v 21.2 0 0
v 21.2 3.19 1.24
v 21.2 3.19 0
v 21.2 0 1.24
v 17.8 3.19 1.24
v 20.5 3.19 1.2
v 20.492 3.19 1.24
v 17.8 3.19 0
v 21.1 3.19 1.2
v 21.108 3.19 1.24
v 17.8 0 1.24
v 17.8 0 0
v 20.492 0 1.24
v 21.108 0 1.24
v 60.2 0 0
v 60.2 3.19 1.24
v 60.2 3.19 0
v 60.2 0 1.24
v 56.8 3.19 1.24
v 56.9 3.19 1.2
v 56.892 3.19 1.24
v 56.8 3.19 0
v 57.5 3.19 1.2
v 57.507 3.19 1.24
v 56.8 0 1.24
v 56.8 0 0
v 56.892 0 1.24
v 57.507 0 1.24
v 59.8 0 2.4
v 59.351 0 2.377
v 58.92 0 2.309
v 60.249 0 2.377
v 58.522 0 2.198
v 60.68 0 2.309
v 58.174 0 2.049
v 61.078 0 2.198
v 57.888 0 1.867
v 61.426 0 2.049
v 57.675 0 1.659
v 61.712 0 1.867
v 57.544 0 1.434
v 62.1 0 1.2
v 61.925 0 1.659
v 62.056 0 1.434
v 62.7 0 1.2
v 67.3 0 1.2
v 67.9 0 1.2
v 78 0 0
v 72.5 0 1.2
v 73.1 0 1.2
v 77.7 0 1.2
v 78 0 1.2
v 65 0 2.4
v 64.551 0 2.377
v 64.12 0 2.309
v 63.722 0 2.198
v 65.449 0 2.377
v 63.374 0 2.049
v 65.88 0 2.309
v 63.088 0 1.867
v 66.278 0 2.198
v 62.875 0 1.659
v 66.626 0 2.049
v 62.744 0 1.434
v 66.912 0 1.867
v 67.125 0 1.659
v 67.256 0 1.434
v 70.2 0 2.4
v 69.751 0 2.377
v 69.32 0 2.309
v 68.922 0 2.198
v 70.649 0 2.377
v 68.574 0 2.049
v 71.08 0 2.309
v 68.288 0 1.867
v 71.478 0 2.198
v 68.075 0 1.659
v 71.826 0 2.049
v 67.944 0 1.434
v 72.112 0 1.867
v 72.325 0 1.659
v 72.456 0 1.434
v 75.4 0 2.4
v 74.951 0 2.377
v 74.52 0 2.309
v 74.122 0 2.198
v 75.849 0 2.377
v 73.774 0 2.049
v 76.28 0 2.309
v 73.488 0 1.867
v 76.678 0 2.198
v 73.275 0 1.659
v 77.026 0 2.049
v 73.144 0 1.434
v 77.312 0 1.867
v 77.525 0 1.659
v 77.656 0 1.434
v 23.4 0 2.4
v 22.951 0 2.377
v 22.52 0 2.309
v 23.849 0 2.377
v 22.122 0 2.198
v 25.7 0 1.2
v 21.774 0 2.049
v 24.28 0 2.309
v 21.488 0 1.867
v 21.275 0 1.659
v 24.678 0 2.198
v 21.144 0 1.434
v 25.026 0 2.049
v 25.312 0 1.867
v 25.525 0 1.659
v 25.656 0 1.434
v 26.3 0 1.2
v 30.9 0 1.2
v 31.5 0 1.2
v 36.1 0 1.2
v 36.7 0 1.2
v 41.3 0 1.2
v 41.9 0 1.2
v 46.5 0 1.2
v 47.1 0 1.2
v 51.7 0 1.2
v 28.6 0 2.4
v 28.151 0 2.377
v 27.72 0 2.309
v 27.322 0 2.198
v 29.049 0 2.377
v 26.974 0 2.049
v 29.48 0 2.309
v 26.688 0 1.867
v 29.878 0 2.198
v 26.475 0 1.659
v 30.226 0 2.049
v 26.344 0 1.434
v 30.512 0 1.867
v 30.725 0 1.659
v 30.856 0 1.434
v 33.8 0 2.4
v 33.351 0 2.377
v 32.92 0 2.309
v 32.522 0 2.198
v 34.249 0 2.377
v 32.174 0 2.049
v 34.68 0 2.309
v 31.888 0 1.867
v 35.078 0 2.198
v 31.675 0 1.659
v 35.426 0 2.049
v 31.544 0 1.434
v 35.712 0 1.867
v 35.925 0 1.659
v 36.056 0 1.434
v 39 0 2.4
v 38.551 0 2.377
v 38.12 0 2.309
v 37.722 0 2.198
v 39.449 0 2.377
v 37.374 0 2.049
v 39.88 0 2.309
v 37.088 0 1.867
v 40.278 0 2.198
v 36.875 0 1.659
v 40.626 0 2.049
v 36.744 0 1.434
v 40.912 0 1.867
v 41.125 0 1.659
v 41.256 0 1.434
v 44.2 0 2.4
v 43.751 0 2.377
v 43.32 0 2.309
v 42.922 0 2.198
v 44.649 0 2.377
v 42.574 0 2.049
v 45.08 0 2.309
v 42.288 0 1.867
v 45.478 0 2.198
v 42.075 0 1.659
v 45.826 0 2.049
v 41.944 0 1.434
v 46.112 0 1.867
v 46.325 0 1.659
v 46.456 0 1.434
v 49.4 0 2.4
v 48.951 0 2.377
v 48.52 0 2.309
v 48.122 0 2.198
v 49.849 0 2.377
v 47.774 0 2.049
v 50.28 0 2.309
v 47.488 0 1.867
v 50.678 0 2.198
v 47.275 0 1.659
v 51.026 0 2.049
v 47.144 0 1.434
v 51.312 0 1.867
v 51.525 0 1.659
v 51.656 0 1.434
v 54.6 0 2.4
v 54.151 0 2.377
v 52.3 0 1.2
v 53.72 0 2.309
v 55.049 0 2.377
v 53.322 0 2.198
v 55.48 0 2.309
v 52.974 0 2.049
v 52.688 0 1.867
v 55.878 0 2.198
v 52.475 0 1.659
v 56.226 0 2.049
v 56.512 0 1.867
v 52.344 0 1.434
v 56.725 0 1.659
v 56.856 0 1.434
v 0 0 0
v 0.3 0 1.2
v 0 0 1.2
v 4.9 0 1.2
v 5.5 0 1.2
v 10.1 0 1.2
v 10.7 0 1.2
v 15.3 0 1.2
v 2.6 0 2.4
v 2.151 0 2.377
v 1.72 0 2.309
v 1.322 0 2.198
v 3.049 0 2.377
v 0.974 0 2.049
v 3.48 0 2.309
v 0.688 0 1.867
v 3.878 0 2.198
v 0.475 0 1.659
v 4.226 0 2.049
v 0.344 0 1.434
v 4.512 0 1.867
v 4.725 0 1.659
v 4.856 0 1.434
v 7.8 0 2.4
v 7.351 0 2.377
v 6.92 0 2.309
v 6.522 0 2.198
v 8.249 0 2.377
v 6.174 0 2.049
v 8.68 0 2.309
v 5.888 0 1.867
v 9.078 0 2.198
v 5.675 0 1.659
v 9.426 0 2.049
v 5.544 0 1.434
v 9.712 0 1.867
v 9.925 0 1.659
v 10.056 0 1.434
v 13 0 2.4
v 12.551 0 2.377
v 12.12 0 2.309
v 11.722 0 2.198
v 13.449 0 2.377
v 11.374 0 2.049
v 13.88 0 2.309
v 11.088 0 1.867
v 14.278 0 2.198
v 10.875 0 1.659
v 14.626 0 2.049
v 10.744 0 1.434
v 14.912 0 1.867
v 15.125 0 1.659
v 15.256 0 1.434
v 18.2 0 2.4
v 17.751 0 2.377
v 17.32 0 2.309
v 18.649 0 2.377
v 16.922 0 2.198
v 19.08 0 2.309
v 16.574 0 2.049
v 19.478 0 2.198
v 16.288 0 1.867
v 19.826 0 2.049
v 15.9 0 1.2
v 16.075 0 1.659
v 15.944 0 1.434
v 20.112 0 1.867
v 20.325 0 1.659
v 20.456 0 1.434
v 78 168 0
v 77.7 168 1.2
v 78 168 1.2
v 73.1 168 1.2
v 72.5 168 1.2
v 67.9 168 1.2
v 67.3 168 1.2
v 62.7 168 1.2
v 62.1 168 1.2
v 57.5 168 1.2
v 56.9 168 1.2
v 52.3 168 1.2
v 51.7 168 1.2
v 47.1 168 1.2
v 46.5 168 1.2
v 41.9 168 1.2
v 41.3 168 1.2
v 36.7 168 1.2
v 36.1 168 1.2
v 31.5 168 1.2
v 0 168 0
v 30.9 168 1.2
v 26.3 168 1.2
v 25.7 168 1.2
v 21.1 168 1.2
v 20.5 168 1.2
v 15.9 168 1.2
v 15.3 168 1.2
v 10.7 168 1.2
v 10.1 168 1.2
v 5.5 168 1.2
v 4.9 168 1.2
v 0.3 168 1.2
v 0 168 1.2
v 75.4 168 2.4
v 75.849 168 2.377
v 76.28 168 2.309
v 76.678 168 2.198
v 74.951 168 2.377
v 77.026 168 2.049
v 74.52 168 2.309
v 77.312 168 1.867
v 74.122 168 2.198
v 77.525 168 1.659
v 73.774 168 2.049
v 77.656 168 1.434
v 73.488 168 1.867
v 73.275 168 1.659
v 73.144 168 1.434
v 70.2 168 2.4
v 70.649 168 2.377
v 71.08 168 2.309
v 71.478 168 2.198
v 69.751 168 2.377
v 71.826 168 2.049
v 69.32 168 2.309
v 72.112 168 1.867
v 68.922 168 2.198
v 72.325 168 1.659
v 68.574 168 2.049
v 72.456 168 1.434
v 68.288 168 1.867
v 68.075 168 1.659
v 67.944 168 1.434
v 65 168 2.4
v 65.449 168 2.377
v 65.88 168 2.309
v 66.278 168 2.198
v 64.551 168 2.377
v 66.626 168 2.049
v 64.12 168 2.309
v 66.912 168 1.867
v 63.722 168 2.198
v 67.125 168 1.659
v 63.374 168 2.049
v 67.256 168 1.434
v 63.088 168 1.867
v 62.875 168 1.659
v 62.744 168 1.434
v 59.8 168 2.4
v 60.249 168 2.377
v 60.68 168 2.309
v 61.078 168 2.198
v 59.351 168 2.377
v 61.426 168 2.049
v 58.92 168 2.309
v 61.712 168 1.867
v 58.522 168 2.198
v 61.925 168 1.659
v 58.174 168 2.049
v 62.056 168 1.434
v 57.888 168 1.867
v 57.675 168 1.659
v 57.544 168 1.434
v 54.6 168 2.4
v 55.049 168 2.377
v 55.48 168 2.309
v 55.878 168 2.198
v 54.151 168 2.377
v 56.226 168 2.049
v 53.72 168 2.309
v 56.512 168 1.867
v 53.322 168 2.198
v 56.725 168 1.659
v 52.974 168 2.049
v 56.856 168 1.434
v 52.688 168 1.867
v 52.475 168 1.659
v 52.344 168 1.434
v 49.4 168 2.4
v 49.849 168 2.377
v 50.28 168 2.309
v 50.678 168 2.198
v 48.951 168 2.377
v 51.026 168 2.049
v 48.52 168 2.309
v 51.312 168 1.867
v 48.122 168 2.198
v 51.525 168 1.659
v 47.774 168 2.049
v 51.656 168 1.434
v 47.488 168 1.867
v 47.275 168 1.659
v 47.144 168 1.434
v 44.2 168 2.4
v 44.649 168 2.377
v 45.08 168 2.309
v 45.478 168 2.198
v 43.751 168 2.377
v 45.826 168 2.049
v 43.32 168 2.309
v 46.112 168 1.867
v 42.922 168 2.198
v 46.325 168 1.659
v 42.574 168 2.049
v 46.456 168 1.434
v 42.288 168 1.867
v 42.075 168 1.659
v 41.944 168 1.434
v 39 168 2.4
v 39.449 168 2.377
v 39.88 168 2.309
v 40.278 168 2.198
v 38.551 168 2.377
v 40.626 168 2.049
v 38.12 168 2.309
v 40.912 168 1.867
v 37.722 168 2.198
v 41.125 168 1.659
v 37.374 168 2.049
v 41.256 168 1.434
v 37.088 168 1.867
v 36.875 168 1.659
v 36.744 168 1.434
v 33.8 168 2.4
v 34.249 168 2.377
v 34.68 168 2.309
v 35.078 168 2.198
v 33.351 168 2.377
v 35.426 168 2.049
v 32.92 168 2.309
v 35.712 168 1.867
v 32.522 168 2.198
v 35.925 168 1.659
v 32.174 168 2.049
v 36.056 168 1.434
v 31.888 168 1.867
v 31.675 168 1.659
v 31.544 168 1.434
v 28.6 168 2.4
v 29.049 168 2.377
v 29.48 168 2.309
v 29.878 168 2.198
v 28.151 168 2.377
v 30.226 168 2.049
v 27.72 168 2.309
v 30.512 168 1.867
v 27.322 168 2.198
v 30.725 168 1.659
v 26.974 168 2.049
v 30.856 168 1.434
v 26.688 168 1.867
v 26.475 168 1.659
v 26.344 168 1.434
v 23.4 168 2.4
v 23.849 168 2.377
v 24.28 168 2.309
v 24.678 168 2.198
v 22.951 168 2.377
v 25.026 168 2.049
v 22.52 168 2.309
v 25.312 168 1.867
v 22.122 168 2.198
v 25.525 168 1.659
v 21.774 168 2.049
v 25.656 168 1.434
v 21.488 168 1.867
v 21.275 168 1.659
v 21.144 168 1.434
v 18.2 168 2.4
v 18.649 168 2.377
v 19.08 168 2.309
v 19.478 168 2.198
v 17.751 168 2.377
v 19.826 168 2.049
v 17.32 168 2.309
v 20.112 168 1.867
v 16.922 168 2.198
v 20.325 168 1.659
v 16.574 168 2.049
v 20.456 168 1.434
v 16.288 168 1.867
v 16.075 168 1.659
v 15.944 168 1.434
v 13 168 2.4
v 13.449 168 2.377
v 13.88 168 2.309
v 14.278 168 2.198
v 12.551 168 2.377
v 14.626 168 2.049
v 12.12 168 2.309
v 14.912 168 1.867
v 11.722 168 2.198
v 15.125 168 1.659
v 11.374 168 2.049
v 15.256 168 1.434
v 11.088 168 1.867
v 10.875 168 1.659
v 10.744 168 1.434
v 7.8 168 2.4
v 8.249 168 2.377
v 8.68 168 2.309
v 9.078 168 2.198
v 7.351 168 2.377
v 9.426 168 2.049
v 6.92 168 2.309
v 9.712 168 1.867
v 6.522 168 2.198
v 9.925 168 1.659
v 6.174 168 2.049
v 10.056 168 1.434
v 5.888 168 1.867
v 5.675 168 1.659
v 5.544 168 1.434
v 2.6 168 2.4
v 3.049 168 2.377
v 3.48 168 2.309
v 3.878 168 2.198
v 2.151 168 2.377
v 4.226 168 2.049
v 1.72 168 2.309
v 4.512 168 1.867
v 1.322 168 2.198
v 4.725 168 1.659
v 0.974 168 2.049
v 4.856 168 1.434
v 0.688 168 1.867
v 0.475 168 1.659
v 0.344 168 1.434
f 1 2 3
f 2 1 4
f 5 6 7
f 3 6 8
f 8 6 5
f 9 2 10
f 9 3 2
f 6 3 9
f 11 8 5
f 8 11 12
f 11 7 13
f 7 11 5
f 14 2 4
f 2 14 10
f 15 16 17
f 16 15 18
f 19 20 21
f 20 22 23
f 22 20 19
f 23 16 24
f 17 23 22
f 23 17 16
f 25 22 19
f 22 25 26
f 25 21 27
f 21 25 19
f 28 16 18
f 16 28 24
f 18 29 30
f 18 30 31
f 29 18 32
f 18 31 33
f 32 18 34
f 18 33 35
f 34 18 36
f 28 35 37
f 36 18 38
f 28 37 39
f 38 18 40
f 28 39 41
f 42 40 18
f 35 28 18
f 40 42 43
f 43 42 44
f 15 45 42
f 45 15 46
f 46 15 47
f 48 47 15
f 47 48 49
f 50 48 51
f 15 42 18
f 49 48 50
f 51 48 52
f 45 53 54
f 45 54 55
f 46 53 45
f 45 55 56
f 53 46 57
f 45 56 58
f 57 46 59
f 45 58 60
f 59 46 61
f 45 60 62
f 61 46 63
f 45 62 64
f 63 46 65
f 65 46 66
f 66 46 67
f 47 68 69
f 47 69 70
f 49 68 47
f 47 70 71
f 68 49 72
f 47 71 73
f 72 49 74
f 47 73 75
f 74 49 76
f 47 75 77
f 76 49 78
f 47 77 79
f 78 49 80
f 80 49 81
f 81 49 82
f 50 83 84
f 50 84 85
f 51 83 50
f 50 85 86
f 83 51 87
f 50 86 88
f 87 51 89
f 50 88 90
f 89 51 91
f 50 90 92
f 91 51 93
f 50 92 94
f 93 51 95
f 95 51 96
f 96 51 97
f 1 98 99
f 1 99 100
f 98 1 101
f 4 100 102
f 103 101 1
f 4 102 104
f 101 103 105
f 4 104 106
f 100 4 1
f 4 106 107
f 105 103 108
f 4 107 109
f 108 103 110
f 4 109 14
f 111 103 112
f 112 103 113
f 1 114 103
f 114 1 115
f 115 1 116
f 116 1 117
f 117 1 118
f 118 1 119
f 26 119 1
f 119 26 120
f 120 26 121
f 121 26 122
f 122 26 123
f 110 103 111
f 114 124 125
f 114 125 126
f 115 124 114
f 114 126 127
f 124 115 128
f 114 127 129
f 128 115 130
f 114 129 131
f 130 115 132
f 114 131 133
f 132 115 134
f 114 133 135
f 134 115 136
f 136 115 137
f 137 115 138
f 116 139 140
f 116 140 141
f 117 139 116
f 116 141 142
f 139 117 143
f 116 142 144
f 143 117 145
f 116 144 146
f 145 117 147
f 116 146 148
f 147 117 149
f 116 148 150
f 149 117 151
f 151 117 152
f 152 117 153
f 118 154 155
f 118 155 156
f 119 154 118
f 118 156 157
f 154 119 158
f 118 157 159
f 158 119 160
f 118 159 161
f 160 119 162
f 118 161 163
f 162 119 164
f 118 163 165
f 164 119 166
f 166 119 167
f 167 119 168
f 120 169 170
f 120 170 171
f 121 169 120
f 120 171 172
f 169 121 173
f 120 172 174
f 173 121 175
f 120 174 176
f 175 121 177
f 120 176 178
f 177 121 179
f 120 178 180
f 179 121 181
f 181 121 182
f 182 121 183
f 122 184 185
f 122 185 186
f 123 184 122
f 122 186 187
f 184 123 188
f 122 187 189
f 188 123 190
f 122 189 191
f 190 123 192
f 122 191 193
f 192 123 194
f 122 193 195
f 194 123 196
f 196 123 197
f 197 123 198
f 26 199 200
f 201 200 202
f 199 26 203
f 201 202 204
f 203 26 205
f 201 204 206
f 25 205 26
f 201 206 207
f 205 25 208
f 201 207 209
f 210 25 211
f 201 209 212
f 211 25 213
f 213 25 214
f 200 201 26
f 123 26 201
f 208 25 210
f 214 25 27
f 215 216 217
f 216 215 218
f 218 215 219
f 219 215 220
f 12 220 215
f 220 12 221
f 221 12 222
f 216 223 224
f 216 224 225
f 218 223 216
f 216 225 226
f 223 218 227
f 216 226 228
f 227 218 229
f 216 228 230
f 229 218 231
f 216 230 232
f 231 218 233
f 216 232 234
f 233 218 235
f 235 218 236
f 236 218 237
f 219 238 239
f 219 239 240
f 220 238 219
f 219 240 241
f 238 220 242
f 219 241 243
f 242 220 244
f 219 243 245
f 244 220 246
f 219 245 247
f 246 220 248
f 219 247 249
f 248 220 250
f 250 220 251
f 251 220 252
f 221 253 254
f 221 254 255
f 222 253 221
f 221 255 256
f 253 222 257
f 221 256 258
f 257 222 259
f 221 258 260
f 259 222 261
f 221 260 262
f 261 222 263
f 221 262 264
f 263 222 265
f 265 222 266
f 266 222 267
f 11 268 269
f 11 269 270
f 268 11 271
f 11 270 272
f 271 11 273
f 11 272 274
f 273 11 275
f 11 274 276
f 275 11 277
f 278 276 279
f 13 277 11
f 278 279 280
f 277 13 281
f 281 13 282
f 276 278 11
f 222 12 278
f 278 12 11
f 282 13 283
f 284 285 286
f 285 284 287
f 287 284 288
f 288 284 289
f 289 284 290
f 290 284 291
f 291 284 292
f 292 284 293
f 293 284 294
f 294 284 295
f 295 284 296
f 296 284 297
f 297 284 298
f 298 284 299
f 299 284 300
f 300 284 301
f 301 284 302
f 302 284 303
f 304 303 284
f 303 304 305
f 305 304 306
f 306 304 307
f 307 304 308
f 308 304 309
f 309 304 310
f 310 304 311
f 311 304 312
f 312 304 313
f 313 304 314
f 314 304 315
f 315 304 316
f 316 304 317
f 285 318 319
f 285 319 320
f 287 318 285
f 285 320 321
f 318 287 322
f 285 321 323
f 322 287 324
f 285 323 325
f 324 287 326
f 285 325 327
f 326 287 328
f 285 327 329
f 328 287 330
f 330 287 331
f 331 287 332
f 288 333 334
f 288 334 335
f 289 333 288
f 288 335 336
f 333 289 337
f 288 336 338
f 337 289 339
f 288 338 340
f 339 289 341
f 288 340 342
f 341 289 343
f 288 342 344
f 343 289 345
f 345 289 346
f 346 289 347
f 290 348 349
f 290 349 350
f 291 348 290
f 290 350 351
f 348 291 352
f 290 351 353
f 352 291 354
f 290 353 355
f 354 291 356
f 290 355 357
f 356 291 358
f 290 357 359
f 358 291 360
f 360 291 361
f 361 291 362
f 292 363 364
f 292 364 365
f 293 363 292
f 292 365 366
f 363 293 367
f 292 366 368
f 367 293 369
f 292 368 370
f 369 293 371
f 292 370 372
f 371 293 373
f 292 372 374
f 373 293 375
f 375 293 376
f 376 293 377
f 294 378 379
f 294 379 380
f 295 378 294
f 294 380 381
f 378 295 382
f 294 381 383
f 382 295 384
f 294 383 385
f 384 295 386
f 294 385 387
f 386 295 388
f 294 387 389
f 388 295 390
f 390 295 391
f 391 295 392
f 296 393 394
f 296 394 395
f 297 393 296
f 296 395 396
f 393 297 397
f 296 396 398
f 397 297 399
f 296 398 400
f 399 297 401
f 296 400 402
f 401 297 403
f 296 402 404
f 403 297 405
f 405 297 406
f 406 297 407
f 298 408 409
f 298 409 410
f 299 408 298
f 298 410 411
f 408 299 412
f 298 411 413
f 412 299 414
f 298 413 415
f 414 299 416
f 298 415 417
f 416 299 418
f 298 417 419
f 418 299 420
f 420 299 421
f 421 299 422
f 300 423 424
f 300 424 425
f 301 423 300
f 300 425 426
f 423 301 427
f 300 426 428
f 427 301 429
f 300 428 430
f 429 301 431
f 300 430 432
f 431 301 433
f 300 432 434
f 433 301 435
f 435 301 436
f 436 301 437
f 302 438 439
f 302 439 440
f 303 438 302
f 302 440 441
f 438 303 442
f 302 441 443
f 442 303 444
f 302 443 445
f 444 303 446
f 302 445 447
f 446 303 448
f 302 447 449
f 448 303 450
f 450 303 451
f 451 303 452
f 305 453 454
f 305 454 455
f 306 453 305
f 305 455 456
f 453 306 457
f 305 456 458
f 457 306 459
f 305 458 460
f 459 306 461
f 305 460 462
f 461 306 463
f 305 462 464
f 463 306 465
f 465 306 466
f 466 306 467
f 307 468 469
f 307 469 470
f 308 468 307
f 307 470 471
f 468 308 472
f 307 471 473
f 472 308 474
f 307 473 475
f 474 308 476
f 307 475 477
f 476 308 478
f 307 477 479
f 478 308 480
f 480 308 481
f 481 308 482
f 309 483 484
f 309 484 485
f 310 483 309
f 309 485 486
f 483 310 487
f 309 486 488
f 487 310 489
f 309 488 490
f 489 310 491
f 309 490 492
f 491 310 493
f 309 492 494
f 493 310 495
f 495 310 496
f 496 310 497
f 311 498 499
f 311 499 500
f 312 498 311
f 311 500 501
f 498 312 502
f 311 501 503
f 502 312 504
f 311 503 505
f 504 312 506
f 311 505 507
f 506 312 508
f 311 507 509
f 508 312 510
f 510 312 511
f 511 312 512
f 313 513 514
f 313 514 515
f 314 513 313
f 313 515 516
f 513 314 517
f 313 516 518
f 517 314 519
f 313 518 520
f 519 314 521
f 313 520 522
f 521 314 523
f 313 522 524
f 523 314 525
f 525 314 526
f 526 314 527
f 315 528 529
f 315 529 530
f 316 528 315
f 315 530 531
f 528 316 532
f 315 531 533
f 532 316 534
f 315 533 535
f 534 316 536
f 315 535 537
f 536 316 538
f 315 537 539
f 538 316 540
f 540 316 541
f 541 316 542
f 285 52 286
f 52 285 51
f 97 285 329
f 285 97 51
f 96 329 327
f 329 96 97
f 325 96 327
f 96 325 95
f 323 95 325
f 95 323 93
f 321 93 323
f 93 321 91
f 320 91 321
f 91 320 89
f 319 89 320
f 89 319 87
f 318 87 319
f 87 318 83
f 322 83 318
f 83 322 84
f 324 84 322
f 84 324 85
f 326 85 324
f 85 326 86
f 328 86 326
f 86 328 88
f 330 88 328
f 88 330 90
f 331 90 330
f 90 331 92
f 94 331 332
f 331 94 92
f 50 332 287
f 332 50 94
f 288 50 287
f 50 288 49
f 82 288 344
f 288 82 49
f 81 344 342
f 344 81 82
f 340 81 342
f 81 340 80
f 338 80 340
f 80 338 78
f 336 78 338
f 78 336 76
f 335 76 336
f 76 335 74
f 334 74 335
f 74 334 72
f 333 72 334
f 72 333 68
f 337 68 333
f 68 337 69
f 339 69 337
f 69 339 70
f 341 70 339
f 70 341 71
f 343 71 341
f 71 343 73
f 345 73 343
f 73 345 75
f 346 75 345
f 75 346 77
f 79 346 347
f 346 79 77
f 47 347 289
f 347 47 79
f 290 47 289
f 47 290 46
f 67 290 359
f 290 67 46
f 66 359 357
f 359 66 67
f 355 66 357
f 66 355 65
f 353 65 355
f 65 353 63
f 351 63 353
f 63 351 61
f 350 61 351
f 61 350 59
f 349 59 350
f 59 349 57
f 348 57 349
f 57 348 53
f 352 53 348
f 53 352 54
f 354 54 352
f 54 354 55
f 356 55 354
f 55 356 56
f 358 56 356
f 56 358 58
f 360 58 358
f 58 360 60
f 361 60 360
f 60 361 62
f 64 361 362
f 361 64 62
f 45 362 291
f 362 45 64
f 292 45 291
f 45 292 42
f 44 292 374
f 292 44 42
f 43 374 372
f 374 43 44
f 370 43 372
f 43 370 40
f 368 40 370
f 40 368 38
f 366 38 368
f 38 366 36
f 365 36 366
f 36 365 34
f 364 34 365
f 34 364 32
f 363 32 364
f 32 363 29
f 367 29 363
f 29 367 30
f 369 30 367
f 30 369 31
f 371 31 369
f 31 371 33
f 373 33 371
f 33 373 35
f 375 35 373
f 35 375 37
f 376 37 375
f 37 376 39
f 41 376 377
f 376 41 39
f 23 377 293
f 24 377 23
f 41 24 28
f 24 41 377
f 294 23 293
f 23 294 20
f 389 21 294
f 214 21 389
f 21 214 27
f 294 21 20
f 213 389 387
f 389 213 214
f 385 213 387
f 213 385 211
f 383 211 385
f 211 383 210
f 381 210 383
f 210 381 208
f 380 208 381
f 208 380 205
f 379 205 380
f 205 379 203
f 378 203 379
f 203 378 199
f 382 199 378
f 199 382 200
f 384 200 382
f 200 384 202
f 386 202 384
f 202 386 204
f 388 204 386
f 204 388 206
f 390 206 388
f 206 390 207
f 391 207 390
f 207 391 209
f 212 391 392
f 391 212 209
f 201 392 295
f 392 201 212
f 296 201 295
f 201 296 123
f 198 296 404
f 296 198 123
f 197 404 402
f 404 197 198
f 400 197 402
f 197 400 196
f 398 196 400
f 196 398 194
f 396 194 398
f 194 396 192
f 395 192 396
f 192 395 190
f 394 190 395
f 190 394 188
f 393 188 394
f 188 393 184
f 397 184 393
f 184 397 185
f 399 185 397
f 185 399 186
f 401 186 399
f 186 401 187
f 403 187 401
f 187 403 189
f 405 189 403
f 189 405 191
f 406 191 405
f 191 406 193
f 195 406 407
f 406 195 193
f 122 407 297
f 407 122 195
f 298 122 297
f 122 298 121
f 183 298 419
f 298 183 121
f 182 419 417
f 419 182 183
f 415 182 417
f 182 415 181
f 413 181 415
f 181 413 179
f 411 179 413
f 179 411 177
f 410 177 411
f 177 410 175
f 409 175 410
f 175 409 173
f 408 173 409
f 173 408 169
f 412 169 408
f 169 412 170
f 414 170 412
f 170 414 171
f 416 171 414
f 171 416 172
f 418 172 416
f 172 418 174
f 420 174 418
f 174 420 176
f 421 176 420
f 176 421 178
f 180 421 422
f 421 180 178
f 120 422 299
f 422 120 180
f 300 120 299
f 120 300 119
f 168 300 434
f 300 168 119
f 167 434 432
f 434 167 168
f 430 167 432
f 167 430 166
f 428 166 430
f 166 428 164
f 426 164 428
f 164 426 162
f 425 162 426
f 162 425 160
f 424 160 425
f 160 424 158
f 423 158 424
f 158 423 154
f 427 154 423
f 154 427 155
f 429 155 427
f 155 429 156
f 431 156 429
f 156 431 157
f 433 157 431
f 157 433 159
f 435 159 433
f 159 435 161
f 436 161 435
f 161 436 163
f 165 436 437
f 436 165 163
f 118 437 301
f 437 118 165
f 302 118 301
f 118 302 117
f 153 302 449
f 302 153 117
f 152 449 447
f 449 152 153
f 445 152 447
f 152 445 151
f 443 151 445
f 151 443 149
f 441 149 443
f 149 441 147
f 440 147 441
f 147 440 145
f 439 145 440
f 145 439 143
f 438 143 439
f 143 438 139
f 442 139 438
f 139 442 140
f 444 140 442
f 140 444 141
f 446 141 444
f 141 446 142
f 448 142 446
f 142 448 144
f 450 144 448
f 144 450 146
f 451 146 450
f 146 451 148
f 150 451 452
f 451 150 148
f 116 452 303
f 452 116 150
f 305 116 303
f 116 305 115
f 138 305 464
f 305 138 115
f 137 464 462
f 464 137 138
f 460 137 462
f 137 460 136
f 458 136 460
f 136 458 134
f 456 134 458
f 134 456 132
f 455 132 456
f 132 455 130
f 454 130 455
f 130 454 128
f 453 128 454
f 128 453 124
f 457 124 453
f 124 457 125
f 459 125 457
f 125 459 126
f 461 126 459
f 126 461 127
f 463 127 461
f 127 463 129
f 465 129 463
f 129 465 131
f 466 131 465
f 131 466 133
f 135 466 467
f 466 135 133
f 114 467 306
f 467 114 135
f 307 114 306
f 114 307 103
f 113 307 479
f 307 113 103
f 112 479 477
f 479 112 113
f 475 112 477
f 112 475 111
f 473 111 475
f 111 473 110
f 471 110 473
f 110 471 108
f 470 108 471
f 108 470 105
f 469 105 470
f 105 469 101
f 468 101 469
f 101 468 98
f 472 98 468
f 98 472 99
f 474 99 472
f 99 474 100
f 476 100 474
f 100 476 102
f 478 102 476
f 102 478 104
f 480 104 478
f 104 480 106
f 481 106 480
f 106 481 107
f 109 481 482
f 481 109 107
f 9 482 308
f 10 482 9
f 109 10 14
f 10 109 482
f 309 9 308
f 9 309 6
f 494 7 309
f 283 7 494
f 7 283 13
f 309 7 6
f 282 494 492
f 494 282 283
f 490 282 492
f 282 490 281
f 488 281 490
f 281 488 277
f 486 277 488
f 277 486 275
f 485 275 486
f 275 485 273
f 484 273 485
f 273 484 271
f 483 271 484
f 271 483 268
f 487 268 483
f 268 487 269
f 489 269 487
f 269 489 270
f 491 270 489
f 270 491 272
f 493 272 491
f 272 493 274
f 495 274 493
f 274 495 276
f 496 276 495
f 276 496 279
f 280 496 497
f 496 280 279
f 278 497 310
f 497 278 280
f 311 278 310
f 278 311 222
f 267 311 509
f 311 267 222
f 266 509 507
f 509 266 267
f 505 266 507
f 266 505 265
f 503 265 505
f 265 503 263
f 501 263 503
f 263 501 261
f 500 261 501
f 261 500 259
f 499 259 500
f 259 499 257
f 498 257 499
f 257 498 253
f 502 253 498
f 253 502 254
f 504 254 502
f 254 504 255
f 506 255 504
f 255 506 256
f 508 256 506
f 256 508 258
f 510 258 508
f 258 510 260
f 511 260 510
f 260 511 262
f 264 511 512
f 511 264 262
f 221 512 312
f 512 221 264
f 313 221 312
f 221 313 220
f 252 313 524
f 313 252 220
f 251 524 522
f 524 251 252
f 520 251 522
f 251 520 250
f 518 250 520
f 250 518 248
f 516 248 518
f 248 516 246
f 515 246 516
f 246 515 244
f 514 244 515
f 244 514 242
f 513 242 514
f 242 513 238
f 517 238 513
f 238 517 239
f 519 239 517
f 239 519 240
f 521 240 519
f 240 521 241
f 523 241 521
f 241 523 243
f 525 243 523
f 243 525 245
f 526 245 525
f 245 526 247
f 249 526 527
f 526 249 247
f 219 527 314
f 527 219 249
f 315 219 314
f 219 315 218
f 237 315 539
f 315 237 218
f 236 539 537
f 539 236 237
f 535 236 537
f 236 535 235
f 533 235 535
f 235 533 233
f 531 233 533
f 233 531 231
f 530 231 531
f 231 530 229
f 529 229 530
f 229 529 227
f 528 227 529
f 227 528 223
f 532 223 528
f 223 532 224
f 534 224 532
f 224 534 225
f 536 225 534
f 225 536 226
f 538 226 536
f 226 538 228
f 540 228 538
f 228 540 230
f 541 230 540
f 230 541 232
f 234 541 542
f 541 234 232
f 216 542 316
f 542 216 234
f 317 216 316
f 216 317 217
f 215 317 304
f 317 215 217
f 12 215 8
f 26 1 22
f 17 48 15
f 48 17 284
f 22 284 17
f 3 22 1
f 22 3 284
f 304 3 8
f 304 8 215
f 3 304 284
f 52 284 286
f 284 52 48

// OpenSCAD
// Right_Wall_Panel_Upper.stl  -  Store Versile room frame (Rev C)
// Quantity: 1   Filament: Peach-beige (e.g. Bambu PLA Matte Desert Tan / Latte Brown, or PLA Sparkle for shimmer)
// Print: layer 0.16 mm, infill 15%, 2 walls, brim 0 mm, NO supports
// Orientation: back  (lying on its back, front face up)
// Notes: Flutes up.
// The library draws parts with their front toward +Y; mirror([0,1,0]) makes the real
// part face the viewer correctly (see build.py). Edit dimensions in versile_parts.scad.
use <../versile_parts.scad>

rotate([-90, 0, 0]) mirror([0, 1, 0]) wall_panel_upper(78);
